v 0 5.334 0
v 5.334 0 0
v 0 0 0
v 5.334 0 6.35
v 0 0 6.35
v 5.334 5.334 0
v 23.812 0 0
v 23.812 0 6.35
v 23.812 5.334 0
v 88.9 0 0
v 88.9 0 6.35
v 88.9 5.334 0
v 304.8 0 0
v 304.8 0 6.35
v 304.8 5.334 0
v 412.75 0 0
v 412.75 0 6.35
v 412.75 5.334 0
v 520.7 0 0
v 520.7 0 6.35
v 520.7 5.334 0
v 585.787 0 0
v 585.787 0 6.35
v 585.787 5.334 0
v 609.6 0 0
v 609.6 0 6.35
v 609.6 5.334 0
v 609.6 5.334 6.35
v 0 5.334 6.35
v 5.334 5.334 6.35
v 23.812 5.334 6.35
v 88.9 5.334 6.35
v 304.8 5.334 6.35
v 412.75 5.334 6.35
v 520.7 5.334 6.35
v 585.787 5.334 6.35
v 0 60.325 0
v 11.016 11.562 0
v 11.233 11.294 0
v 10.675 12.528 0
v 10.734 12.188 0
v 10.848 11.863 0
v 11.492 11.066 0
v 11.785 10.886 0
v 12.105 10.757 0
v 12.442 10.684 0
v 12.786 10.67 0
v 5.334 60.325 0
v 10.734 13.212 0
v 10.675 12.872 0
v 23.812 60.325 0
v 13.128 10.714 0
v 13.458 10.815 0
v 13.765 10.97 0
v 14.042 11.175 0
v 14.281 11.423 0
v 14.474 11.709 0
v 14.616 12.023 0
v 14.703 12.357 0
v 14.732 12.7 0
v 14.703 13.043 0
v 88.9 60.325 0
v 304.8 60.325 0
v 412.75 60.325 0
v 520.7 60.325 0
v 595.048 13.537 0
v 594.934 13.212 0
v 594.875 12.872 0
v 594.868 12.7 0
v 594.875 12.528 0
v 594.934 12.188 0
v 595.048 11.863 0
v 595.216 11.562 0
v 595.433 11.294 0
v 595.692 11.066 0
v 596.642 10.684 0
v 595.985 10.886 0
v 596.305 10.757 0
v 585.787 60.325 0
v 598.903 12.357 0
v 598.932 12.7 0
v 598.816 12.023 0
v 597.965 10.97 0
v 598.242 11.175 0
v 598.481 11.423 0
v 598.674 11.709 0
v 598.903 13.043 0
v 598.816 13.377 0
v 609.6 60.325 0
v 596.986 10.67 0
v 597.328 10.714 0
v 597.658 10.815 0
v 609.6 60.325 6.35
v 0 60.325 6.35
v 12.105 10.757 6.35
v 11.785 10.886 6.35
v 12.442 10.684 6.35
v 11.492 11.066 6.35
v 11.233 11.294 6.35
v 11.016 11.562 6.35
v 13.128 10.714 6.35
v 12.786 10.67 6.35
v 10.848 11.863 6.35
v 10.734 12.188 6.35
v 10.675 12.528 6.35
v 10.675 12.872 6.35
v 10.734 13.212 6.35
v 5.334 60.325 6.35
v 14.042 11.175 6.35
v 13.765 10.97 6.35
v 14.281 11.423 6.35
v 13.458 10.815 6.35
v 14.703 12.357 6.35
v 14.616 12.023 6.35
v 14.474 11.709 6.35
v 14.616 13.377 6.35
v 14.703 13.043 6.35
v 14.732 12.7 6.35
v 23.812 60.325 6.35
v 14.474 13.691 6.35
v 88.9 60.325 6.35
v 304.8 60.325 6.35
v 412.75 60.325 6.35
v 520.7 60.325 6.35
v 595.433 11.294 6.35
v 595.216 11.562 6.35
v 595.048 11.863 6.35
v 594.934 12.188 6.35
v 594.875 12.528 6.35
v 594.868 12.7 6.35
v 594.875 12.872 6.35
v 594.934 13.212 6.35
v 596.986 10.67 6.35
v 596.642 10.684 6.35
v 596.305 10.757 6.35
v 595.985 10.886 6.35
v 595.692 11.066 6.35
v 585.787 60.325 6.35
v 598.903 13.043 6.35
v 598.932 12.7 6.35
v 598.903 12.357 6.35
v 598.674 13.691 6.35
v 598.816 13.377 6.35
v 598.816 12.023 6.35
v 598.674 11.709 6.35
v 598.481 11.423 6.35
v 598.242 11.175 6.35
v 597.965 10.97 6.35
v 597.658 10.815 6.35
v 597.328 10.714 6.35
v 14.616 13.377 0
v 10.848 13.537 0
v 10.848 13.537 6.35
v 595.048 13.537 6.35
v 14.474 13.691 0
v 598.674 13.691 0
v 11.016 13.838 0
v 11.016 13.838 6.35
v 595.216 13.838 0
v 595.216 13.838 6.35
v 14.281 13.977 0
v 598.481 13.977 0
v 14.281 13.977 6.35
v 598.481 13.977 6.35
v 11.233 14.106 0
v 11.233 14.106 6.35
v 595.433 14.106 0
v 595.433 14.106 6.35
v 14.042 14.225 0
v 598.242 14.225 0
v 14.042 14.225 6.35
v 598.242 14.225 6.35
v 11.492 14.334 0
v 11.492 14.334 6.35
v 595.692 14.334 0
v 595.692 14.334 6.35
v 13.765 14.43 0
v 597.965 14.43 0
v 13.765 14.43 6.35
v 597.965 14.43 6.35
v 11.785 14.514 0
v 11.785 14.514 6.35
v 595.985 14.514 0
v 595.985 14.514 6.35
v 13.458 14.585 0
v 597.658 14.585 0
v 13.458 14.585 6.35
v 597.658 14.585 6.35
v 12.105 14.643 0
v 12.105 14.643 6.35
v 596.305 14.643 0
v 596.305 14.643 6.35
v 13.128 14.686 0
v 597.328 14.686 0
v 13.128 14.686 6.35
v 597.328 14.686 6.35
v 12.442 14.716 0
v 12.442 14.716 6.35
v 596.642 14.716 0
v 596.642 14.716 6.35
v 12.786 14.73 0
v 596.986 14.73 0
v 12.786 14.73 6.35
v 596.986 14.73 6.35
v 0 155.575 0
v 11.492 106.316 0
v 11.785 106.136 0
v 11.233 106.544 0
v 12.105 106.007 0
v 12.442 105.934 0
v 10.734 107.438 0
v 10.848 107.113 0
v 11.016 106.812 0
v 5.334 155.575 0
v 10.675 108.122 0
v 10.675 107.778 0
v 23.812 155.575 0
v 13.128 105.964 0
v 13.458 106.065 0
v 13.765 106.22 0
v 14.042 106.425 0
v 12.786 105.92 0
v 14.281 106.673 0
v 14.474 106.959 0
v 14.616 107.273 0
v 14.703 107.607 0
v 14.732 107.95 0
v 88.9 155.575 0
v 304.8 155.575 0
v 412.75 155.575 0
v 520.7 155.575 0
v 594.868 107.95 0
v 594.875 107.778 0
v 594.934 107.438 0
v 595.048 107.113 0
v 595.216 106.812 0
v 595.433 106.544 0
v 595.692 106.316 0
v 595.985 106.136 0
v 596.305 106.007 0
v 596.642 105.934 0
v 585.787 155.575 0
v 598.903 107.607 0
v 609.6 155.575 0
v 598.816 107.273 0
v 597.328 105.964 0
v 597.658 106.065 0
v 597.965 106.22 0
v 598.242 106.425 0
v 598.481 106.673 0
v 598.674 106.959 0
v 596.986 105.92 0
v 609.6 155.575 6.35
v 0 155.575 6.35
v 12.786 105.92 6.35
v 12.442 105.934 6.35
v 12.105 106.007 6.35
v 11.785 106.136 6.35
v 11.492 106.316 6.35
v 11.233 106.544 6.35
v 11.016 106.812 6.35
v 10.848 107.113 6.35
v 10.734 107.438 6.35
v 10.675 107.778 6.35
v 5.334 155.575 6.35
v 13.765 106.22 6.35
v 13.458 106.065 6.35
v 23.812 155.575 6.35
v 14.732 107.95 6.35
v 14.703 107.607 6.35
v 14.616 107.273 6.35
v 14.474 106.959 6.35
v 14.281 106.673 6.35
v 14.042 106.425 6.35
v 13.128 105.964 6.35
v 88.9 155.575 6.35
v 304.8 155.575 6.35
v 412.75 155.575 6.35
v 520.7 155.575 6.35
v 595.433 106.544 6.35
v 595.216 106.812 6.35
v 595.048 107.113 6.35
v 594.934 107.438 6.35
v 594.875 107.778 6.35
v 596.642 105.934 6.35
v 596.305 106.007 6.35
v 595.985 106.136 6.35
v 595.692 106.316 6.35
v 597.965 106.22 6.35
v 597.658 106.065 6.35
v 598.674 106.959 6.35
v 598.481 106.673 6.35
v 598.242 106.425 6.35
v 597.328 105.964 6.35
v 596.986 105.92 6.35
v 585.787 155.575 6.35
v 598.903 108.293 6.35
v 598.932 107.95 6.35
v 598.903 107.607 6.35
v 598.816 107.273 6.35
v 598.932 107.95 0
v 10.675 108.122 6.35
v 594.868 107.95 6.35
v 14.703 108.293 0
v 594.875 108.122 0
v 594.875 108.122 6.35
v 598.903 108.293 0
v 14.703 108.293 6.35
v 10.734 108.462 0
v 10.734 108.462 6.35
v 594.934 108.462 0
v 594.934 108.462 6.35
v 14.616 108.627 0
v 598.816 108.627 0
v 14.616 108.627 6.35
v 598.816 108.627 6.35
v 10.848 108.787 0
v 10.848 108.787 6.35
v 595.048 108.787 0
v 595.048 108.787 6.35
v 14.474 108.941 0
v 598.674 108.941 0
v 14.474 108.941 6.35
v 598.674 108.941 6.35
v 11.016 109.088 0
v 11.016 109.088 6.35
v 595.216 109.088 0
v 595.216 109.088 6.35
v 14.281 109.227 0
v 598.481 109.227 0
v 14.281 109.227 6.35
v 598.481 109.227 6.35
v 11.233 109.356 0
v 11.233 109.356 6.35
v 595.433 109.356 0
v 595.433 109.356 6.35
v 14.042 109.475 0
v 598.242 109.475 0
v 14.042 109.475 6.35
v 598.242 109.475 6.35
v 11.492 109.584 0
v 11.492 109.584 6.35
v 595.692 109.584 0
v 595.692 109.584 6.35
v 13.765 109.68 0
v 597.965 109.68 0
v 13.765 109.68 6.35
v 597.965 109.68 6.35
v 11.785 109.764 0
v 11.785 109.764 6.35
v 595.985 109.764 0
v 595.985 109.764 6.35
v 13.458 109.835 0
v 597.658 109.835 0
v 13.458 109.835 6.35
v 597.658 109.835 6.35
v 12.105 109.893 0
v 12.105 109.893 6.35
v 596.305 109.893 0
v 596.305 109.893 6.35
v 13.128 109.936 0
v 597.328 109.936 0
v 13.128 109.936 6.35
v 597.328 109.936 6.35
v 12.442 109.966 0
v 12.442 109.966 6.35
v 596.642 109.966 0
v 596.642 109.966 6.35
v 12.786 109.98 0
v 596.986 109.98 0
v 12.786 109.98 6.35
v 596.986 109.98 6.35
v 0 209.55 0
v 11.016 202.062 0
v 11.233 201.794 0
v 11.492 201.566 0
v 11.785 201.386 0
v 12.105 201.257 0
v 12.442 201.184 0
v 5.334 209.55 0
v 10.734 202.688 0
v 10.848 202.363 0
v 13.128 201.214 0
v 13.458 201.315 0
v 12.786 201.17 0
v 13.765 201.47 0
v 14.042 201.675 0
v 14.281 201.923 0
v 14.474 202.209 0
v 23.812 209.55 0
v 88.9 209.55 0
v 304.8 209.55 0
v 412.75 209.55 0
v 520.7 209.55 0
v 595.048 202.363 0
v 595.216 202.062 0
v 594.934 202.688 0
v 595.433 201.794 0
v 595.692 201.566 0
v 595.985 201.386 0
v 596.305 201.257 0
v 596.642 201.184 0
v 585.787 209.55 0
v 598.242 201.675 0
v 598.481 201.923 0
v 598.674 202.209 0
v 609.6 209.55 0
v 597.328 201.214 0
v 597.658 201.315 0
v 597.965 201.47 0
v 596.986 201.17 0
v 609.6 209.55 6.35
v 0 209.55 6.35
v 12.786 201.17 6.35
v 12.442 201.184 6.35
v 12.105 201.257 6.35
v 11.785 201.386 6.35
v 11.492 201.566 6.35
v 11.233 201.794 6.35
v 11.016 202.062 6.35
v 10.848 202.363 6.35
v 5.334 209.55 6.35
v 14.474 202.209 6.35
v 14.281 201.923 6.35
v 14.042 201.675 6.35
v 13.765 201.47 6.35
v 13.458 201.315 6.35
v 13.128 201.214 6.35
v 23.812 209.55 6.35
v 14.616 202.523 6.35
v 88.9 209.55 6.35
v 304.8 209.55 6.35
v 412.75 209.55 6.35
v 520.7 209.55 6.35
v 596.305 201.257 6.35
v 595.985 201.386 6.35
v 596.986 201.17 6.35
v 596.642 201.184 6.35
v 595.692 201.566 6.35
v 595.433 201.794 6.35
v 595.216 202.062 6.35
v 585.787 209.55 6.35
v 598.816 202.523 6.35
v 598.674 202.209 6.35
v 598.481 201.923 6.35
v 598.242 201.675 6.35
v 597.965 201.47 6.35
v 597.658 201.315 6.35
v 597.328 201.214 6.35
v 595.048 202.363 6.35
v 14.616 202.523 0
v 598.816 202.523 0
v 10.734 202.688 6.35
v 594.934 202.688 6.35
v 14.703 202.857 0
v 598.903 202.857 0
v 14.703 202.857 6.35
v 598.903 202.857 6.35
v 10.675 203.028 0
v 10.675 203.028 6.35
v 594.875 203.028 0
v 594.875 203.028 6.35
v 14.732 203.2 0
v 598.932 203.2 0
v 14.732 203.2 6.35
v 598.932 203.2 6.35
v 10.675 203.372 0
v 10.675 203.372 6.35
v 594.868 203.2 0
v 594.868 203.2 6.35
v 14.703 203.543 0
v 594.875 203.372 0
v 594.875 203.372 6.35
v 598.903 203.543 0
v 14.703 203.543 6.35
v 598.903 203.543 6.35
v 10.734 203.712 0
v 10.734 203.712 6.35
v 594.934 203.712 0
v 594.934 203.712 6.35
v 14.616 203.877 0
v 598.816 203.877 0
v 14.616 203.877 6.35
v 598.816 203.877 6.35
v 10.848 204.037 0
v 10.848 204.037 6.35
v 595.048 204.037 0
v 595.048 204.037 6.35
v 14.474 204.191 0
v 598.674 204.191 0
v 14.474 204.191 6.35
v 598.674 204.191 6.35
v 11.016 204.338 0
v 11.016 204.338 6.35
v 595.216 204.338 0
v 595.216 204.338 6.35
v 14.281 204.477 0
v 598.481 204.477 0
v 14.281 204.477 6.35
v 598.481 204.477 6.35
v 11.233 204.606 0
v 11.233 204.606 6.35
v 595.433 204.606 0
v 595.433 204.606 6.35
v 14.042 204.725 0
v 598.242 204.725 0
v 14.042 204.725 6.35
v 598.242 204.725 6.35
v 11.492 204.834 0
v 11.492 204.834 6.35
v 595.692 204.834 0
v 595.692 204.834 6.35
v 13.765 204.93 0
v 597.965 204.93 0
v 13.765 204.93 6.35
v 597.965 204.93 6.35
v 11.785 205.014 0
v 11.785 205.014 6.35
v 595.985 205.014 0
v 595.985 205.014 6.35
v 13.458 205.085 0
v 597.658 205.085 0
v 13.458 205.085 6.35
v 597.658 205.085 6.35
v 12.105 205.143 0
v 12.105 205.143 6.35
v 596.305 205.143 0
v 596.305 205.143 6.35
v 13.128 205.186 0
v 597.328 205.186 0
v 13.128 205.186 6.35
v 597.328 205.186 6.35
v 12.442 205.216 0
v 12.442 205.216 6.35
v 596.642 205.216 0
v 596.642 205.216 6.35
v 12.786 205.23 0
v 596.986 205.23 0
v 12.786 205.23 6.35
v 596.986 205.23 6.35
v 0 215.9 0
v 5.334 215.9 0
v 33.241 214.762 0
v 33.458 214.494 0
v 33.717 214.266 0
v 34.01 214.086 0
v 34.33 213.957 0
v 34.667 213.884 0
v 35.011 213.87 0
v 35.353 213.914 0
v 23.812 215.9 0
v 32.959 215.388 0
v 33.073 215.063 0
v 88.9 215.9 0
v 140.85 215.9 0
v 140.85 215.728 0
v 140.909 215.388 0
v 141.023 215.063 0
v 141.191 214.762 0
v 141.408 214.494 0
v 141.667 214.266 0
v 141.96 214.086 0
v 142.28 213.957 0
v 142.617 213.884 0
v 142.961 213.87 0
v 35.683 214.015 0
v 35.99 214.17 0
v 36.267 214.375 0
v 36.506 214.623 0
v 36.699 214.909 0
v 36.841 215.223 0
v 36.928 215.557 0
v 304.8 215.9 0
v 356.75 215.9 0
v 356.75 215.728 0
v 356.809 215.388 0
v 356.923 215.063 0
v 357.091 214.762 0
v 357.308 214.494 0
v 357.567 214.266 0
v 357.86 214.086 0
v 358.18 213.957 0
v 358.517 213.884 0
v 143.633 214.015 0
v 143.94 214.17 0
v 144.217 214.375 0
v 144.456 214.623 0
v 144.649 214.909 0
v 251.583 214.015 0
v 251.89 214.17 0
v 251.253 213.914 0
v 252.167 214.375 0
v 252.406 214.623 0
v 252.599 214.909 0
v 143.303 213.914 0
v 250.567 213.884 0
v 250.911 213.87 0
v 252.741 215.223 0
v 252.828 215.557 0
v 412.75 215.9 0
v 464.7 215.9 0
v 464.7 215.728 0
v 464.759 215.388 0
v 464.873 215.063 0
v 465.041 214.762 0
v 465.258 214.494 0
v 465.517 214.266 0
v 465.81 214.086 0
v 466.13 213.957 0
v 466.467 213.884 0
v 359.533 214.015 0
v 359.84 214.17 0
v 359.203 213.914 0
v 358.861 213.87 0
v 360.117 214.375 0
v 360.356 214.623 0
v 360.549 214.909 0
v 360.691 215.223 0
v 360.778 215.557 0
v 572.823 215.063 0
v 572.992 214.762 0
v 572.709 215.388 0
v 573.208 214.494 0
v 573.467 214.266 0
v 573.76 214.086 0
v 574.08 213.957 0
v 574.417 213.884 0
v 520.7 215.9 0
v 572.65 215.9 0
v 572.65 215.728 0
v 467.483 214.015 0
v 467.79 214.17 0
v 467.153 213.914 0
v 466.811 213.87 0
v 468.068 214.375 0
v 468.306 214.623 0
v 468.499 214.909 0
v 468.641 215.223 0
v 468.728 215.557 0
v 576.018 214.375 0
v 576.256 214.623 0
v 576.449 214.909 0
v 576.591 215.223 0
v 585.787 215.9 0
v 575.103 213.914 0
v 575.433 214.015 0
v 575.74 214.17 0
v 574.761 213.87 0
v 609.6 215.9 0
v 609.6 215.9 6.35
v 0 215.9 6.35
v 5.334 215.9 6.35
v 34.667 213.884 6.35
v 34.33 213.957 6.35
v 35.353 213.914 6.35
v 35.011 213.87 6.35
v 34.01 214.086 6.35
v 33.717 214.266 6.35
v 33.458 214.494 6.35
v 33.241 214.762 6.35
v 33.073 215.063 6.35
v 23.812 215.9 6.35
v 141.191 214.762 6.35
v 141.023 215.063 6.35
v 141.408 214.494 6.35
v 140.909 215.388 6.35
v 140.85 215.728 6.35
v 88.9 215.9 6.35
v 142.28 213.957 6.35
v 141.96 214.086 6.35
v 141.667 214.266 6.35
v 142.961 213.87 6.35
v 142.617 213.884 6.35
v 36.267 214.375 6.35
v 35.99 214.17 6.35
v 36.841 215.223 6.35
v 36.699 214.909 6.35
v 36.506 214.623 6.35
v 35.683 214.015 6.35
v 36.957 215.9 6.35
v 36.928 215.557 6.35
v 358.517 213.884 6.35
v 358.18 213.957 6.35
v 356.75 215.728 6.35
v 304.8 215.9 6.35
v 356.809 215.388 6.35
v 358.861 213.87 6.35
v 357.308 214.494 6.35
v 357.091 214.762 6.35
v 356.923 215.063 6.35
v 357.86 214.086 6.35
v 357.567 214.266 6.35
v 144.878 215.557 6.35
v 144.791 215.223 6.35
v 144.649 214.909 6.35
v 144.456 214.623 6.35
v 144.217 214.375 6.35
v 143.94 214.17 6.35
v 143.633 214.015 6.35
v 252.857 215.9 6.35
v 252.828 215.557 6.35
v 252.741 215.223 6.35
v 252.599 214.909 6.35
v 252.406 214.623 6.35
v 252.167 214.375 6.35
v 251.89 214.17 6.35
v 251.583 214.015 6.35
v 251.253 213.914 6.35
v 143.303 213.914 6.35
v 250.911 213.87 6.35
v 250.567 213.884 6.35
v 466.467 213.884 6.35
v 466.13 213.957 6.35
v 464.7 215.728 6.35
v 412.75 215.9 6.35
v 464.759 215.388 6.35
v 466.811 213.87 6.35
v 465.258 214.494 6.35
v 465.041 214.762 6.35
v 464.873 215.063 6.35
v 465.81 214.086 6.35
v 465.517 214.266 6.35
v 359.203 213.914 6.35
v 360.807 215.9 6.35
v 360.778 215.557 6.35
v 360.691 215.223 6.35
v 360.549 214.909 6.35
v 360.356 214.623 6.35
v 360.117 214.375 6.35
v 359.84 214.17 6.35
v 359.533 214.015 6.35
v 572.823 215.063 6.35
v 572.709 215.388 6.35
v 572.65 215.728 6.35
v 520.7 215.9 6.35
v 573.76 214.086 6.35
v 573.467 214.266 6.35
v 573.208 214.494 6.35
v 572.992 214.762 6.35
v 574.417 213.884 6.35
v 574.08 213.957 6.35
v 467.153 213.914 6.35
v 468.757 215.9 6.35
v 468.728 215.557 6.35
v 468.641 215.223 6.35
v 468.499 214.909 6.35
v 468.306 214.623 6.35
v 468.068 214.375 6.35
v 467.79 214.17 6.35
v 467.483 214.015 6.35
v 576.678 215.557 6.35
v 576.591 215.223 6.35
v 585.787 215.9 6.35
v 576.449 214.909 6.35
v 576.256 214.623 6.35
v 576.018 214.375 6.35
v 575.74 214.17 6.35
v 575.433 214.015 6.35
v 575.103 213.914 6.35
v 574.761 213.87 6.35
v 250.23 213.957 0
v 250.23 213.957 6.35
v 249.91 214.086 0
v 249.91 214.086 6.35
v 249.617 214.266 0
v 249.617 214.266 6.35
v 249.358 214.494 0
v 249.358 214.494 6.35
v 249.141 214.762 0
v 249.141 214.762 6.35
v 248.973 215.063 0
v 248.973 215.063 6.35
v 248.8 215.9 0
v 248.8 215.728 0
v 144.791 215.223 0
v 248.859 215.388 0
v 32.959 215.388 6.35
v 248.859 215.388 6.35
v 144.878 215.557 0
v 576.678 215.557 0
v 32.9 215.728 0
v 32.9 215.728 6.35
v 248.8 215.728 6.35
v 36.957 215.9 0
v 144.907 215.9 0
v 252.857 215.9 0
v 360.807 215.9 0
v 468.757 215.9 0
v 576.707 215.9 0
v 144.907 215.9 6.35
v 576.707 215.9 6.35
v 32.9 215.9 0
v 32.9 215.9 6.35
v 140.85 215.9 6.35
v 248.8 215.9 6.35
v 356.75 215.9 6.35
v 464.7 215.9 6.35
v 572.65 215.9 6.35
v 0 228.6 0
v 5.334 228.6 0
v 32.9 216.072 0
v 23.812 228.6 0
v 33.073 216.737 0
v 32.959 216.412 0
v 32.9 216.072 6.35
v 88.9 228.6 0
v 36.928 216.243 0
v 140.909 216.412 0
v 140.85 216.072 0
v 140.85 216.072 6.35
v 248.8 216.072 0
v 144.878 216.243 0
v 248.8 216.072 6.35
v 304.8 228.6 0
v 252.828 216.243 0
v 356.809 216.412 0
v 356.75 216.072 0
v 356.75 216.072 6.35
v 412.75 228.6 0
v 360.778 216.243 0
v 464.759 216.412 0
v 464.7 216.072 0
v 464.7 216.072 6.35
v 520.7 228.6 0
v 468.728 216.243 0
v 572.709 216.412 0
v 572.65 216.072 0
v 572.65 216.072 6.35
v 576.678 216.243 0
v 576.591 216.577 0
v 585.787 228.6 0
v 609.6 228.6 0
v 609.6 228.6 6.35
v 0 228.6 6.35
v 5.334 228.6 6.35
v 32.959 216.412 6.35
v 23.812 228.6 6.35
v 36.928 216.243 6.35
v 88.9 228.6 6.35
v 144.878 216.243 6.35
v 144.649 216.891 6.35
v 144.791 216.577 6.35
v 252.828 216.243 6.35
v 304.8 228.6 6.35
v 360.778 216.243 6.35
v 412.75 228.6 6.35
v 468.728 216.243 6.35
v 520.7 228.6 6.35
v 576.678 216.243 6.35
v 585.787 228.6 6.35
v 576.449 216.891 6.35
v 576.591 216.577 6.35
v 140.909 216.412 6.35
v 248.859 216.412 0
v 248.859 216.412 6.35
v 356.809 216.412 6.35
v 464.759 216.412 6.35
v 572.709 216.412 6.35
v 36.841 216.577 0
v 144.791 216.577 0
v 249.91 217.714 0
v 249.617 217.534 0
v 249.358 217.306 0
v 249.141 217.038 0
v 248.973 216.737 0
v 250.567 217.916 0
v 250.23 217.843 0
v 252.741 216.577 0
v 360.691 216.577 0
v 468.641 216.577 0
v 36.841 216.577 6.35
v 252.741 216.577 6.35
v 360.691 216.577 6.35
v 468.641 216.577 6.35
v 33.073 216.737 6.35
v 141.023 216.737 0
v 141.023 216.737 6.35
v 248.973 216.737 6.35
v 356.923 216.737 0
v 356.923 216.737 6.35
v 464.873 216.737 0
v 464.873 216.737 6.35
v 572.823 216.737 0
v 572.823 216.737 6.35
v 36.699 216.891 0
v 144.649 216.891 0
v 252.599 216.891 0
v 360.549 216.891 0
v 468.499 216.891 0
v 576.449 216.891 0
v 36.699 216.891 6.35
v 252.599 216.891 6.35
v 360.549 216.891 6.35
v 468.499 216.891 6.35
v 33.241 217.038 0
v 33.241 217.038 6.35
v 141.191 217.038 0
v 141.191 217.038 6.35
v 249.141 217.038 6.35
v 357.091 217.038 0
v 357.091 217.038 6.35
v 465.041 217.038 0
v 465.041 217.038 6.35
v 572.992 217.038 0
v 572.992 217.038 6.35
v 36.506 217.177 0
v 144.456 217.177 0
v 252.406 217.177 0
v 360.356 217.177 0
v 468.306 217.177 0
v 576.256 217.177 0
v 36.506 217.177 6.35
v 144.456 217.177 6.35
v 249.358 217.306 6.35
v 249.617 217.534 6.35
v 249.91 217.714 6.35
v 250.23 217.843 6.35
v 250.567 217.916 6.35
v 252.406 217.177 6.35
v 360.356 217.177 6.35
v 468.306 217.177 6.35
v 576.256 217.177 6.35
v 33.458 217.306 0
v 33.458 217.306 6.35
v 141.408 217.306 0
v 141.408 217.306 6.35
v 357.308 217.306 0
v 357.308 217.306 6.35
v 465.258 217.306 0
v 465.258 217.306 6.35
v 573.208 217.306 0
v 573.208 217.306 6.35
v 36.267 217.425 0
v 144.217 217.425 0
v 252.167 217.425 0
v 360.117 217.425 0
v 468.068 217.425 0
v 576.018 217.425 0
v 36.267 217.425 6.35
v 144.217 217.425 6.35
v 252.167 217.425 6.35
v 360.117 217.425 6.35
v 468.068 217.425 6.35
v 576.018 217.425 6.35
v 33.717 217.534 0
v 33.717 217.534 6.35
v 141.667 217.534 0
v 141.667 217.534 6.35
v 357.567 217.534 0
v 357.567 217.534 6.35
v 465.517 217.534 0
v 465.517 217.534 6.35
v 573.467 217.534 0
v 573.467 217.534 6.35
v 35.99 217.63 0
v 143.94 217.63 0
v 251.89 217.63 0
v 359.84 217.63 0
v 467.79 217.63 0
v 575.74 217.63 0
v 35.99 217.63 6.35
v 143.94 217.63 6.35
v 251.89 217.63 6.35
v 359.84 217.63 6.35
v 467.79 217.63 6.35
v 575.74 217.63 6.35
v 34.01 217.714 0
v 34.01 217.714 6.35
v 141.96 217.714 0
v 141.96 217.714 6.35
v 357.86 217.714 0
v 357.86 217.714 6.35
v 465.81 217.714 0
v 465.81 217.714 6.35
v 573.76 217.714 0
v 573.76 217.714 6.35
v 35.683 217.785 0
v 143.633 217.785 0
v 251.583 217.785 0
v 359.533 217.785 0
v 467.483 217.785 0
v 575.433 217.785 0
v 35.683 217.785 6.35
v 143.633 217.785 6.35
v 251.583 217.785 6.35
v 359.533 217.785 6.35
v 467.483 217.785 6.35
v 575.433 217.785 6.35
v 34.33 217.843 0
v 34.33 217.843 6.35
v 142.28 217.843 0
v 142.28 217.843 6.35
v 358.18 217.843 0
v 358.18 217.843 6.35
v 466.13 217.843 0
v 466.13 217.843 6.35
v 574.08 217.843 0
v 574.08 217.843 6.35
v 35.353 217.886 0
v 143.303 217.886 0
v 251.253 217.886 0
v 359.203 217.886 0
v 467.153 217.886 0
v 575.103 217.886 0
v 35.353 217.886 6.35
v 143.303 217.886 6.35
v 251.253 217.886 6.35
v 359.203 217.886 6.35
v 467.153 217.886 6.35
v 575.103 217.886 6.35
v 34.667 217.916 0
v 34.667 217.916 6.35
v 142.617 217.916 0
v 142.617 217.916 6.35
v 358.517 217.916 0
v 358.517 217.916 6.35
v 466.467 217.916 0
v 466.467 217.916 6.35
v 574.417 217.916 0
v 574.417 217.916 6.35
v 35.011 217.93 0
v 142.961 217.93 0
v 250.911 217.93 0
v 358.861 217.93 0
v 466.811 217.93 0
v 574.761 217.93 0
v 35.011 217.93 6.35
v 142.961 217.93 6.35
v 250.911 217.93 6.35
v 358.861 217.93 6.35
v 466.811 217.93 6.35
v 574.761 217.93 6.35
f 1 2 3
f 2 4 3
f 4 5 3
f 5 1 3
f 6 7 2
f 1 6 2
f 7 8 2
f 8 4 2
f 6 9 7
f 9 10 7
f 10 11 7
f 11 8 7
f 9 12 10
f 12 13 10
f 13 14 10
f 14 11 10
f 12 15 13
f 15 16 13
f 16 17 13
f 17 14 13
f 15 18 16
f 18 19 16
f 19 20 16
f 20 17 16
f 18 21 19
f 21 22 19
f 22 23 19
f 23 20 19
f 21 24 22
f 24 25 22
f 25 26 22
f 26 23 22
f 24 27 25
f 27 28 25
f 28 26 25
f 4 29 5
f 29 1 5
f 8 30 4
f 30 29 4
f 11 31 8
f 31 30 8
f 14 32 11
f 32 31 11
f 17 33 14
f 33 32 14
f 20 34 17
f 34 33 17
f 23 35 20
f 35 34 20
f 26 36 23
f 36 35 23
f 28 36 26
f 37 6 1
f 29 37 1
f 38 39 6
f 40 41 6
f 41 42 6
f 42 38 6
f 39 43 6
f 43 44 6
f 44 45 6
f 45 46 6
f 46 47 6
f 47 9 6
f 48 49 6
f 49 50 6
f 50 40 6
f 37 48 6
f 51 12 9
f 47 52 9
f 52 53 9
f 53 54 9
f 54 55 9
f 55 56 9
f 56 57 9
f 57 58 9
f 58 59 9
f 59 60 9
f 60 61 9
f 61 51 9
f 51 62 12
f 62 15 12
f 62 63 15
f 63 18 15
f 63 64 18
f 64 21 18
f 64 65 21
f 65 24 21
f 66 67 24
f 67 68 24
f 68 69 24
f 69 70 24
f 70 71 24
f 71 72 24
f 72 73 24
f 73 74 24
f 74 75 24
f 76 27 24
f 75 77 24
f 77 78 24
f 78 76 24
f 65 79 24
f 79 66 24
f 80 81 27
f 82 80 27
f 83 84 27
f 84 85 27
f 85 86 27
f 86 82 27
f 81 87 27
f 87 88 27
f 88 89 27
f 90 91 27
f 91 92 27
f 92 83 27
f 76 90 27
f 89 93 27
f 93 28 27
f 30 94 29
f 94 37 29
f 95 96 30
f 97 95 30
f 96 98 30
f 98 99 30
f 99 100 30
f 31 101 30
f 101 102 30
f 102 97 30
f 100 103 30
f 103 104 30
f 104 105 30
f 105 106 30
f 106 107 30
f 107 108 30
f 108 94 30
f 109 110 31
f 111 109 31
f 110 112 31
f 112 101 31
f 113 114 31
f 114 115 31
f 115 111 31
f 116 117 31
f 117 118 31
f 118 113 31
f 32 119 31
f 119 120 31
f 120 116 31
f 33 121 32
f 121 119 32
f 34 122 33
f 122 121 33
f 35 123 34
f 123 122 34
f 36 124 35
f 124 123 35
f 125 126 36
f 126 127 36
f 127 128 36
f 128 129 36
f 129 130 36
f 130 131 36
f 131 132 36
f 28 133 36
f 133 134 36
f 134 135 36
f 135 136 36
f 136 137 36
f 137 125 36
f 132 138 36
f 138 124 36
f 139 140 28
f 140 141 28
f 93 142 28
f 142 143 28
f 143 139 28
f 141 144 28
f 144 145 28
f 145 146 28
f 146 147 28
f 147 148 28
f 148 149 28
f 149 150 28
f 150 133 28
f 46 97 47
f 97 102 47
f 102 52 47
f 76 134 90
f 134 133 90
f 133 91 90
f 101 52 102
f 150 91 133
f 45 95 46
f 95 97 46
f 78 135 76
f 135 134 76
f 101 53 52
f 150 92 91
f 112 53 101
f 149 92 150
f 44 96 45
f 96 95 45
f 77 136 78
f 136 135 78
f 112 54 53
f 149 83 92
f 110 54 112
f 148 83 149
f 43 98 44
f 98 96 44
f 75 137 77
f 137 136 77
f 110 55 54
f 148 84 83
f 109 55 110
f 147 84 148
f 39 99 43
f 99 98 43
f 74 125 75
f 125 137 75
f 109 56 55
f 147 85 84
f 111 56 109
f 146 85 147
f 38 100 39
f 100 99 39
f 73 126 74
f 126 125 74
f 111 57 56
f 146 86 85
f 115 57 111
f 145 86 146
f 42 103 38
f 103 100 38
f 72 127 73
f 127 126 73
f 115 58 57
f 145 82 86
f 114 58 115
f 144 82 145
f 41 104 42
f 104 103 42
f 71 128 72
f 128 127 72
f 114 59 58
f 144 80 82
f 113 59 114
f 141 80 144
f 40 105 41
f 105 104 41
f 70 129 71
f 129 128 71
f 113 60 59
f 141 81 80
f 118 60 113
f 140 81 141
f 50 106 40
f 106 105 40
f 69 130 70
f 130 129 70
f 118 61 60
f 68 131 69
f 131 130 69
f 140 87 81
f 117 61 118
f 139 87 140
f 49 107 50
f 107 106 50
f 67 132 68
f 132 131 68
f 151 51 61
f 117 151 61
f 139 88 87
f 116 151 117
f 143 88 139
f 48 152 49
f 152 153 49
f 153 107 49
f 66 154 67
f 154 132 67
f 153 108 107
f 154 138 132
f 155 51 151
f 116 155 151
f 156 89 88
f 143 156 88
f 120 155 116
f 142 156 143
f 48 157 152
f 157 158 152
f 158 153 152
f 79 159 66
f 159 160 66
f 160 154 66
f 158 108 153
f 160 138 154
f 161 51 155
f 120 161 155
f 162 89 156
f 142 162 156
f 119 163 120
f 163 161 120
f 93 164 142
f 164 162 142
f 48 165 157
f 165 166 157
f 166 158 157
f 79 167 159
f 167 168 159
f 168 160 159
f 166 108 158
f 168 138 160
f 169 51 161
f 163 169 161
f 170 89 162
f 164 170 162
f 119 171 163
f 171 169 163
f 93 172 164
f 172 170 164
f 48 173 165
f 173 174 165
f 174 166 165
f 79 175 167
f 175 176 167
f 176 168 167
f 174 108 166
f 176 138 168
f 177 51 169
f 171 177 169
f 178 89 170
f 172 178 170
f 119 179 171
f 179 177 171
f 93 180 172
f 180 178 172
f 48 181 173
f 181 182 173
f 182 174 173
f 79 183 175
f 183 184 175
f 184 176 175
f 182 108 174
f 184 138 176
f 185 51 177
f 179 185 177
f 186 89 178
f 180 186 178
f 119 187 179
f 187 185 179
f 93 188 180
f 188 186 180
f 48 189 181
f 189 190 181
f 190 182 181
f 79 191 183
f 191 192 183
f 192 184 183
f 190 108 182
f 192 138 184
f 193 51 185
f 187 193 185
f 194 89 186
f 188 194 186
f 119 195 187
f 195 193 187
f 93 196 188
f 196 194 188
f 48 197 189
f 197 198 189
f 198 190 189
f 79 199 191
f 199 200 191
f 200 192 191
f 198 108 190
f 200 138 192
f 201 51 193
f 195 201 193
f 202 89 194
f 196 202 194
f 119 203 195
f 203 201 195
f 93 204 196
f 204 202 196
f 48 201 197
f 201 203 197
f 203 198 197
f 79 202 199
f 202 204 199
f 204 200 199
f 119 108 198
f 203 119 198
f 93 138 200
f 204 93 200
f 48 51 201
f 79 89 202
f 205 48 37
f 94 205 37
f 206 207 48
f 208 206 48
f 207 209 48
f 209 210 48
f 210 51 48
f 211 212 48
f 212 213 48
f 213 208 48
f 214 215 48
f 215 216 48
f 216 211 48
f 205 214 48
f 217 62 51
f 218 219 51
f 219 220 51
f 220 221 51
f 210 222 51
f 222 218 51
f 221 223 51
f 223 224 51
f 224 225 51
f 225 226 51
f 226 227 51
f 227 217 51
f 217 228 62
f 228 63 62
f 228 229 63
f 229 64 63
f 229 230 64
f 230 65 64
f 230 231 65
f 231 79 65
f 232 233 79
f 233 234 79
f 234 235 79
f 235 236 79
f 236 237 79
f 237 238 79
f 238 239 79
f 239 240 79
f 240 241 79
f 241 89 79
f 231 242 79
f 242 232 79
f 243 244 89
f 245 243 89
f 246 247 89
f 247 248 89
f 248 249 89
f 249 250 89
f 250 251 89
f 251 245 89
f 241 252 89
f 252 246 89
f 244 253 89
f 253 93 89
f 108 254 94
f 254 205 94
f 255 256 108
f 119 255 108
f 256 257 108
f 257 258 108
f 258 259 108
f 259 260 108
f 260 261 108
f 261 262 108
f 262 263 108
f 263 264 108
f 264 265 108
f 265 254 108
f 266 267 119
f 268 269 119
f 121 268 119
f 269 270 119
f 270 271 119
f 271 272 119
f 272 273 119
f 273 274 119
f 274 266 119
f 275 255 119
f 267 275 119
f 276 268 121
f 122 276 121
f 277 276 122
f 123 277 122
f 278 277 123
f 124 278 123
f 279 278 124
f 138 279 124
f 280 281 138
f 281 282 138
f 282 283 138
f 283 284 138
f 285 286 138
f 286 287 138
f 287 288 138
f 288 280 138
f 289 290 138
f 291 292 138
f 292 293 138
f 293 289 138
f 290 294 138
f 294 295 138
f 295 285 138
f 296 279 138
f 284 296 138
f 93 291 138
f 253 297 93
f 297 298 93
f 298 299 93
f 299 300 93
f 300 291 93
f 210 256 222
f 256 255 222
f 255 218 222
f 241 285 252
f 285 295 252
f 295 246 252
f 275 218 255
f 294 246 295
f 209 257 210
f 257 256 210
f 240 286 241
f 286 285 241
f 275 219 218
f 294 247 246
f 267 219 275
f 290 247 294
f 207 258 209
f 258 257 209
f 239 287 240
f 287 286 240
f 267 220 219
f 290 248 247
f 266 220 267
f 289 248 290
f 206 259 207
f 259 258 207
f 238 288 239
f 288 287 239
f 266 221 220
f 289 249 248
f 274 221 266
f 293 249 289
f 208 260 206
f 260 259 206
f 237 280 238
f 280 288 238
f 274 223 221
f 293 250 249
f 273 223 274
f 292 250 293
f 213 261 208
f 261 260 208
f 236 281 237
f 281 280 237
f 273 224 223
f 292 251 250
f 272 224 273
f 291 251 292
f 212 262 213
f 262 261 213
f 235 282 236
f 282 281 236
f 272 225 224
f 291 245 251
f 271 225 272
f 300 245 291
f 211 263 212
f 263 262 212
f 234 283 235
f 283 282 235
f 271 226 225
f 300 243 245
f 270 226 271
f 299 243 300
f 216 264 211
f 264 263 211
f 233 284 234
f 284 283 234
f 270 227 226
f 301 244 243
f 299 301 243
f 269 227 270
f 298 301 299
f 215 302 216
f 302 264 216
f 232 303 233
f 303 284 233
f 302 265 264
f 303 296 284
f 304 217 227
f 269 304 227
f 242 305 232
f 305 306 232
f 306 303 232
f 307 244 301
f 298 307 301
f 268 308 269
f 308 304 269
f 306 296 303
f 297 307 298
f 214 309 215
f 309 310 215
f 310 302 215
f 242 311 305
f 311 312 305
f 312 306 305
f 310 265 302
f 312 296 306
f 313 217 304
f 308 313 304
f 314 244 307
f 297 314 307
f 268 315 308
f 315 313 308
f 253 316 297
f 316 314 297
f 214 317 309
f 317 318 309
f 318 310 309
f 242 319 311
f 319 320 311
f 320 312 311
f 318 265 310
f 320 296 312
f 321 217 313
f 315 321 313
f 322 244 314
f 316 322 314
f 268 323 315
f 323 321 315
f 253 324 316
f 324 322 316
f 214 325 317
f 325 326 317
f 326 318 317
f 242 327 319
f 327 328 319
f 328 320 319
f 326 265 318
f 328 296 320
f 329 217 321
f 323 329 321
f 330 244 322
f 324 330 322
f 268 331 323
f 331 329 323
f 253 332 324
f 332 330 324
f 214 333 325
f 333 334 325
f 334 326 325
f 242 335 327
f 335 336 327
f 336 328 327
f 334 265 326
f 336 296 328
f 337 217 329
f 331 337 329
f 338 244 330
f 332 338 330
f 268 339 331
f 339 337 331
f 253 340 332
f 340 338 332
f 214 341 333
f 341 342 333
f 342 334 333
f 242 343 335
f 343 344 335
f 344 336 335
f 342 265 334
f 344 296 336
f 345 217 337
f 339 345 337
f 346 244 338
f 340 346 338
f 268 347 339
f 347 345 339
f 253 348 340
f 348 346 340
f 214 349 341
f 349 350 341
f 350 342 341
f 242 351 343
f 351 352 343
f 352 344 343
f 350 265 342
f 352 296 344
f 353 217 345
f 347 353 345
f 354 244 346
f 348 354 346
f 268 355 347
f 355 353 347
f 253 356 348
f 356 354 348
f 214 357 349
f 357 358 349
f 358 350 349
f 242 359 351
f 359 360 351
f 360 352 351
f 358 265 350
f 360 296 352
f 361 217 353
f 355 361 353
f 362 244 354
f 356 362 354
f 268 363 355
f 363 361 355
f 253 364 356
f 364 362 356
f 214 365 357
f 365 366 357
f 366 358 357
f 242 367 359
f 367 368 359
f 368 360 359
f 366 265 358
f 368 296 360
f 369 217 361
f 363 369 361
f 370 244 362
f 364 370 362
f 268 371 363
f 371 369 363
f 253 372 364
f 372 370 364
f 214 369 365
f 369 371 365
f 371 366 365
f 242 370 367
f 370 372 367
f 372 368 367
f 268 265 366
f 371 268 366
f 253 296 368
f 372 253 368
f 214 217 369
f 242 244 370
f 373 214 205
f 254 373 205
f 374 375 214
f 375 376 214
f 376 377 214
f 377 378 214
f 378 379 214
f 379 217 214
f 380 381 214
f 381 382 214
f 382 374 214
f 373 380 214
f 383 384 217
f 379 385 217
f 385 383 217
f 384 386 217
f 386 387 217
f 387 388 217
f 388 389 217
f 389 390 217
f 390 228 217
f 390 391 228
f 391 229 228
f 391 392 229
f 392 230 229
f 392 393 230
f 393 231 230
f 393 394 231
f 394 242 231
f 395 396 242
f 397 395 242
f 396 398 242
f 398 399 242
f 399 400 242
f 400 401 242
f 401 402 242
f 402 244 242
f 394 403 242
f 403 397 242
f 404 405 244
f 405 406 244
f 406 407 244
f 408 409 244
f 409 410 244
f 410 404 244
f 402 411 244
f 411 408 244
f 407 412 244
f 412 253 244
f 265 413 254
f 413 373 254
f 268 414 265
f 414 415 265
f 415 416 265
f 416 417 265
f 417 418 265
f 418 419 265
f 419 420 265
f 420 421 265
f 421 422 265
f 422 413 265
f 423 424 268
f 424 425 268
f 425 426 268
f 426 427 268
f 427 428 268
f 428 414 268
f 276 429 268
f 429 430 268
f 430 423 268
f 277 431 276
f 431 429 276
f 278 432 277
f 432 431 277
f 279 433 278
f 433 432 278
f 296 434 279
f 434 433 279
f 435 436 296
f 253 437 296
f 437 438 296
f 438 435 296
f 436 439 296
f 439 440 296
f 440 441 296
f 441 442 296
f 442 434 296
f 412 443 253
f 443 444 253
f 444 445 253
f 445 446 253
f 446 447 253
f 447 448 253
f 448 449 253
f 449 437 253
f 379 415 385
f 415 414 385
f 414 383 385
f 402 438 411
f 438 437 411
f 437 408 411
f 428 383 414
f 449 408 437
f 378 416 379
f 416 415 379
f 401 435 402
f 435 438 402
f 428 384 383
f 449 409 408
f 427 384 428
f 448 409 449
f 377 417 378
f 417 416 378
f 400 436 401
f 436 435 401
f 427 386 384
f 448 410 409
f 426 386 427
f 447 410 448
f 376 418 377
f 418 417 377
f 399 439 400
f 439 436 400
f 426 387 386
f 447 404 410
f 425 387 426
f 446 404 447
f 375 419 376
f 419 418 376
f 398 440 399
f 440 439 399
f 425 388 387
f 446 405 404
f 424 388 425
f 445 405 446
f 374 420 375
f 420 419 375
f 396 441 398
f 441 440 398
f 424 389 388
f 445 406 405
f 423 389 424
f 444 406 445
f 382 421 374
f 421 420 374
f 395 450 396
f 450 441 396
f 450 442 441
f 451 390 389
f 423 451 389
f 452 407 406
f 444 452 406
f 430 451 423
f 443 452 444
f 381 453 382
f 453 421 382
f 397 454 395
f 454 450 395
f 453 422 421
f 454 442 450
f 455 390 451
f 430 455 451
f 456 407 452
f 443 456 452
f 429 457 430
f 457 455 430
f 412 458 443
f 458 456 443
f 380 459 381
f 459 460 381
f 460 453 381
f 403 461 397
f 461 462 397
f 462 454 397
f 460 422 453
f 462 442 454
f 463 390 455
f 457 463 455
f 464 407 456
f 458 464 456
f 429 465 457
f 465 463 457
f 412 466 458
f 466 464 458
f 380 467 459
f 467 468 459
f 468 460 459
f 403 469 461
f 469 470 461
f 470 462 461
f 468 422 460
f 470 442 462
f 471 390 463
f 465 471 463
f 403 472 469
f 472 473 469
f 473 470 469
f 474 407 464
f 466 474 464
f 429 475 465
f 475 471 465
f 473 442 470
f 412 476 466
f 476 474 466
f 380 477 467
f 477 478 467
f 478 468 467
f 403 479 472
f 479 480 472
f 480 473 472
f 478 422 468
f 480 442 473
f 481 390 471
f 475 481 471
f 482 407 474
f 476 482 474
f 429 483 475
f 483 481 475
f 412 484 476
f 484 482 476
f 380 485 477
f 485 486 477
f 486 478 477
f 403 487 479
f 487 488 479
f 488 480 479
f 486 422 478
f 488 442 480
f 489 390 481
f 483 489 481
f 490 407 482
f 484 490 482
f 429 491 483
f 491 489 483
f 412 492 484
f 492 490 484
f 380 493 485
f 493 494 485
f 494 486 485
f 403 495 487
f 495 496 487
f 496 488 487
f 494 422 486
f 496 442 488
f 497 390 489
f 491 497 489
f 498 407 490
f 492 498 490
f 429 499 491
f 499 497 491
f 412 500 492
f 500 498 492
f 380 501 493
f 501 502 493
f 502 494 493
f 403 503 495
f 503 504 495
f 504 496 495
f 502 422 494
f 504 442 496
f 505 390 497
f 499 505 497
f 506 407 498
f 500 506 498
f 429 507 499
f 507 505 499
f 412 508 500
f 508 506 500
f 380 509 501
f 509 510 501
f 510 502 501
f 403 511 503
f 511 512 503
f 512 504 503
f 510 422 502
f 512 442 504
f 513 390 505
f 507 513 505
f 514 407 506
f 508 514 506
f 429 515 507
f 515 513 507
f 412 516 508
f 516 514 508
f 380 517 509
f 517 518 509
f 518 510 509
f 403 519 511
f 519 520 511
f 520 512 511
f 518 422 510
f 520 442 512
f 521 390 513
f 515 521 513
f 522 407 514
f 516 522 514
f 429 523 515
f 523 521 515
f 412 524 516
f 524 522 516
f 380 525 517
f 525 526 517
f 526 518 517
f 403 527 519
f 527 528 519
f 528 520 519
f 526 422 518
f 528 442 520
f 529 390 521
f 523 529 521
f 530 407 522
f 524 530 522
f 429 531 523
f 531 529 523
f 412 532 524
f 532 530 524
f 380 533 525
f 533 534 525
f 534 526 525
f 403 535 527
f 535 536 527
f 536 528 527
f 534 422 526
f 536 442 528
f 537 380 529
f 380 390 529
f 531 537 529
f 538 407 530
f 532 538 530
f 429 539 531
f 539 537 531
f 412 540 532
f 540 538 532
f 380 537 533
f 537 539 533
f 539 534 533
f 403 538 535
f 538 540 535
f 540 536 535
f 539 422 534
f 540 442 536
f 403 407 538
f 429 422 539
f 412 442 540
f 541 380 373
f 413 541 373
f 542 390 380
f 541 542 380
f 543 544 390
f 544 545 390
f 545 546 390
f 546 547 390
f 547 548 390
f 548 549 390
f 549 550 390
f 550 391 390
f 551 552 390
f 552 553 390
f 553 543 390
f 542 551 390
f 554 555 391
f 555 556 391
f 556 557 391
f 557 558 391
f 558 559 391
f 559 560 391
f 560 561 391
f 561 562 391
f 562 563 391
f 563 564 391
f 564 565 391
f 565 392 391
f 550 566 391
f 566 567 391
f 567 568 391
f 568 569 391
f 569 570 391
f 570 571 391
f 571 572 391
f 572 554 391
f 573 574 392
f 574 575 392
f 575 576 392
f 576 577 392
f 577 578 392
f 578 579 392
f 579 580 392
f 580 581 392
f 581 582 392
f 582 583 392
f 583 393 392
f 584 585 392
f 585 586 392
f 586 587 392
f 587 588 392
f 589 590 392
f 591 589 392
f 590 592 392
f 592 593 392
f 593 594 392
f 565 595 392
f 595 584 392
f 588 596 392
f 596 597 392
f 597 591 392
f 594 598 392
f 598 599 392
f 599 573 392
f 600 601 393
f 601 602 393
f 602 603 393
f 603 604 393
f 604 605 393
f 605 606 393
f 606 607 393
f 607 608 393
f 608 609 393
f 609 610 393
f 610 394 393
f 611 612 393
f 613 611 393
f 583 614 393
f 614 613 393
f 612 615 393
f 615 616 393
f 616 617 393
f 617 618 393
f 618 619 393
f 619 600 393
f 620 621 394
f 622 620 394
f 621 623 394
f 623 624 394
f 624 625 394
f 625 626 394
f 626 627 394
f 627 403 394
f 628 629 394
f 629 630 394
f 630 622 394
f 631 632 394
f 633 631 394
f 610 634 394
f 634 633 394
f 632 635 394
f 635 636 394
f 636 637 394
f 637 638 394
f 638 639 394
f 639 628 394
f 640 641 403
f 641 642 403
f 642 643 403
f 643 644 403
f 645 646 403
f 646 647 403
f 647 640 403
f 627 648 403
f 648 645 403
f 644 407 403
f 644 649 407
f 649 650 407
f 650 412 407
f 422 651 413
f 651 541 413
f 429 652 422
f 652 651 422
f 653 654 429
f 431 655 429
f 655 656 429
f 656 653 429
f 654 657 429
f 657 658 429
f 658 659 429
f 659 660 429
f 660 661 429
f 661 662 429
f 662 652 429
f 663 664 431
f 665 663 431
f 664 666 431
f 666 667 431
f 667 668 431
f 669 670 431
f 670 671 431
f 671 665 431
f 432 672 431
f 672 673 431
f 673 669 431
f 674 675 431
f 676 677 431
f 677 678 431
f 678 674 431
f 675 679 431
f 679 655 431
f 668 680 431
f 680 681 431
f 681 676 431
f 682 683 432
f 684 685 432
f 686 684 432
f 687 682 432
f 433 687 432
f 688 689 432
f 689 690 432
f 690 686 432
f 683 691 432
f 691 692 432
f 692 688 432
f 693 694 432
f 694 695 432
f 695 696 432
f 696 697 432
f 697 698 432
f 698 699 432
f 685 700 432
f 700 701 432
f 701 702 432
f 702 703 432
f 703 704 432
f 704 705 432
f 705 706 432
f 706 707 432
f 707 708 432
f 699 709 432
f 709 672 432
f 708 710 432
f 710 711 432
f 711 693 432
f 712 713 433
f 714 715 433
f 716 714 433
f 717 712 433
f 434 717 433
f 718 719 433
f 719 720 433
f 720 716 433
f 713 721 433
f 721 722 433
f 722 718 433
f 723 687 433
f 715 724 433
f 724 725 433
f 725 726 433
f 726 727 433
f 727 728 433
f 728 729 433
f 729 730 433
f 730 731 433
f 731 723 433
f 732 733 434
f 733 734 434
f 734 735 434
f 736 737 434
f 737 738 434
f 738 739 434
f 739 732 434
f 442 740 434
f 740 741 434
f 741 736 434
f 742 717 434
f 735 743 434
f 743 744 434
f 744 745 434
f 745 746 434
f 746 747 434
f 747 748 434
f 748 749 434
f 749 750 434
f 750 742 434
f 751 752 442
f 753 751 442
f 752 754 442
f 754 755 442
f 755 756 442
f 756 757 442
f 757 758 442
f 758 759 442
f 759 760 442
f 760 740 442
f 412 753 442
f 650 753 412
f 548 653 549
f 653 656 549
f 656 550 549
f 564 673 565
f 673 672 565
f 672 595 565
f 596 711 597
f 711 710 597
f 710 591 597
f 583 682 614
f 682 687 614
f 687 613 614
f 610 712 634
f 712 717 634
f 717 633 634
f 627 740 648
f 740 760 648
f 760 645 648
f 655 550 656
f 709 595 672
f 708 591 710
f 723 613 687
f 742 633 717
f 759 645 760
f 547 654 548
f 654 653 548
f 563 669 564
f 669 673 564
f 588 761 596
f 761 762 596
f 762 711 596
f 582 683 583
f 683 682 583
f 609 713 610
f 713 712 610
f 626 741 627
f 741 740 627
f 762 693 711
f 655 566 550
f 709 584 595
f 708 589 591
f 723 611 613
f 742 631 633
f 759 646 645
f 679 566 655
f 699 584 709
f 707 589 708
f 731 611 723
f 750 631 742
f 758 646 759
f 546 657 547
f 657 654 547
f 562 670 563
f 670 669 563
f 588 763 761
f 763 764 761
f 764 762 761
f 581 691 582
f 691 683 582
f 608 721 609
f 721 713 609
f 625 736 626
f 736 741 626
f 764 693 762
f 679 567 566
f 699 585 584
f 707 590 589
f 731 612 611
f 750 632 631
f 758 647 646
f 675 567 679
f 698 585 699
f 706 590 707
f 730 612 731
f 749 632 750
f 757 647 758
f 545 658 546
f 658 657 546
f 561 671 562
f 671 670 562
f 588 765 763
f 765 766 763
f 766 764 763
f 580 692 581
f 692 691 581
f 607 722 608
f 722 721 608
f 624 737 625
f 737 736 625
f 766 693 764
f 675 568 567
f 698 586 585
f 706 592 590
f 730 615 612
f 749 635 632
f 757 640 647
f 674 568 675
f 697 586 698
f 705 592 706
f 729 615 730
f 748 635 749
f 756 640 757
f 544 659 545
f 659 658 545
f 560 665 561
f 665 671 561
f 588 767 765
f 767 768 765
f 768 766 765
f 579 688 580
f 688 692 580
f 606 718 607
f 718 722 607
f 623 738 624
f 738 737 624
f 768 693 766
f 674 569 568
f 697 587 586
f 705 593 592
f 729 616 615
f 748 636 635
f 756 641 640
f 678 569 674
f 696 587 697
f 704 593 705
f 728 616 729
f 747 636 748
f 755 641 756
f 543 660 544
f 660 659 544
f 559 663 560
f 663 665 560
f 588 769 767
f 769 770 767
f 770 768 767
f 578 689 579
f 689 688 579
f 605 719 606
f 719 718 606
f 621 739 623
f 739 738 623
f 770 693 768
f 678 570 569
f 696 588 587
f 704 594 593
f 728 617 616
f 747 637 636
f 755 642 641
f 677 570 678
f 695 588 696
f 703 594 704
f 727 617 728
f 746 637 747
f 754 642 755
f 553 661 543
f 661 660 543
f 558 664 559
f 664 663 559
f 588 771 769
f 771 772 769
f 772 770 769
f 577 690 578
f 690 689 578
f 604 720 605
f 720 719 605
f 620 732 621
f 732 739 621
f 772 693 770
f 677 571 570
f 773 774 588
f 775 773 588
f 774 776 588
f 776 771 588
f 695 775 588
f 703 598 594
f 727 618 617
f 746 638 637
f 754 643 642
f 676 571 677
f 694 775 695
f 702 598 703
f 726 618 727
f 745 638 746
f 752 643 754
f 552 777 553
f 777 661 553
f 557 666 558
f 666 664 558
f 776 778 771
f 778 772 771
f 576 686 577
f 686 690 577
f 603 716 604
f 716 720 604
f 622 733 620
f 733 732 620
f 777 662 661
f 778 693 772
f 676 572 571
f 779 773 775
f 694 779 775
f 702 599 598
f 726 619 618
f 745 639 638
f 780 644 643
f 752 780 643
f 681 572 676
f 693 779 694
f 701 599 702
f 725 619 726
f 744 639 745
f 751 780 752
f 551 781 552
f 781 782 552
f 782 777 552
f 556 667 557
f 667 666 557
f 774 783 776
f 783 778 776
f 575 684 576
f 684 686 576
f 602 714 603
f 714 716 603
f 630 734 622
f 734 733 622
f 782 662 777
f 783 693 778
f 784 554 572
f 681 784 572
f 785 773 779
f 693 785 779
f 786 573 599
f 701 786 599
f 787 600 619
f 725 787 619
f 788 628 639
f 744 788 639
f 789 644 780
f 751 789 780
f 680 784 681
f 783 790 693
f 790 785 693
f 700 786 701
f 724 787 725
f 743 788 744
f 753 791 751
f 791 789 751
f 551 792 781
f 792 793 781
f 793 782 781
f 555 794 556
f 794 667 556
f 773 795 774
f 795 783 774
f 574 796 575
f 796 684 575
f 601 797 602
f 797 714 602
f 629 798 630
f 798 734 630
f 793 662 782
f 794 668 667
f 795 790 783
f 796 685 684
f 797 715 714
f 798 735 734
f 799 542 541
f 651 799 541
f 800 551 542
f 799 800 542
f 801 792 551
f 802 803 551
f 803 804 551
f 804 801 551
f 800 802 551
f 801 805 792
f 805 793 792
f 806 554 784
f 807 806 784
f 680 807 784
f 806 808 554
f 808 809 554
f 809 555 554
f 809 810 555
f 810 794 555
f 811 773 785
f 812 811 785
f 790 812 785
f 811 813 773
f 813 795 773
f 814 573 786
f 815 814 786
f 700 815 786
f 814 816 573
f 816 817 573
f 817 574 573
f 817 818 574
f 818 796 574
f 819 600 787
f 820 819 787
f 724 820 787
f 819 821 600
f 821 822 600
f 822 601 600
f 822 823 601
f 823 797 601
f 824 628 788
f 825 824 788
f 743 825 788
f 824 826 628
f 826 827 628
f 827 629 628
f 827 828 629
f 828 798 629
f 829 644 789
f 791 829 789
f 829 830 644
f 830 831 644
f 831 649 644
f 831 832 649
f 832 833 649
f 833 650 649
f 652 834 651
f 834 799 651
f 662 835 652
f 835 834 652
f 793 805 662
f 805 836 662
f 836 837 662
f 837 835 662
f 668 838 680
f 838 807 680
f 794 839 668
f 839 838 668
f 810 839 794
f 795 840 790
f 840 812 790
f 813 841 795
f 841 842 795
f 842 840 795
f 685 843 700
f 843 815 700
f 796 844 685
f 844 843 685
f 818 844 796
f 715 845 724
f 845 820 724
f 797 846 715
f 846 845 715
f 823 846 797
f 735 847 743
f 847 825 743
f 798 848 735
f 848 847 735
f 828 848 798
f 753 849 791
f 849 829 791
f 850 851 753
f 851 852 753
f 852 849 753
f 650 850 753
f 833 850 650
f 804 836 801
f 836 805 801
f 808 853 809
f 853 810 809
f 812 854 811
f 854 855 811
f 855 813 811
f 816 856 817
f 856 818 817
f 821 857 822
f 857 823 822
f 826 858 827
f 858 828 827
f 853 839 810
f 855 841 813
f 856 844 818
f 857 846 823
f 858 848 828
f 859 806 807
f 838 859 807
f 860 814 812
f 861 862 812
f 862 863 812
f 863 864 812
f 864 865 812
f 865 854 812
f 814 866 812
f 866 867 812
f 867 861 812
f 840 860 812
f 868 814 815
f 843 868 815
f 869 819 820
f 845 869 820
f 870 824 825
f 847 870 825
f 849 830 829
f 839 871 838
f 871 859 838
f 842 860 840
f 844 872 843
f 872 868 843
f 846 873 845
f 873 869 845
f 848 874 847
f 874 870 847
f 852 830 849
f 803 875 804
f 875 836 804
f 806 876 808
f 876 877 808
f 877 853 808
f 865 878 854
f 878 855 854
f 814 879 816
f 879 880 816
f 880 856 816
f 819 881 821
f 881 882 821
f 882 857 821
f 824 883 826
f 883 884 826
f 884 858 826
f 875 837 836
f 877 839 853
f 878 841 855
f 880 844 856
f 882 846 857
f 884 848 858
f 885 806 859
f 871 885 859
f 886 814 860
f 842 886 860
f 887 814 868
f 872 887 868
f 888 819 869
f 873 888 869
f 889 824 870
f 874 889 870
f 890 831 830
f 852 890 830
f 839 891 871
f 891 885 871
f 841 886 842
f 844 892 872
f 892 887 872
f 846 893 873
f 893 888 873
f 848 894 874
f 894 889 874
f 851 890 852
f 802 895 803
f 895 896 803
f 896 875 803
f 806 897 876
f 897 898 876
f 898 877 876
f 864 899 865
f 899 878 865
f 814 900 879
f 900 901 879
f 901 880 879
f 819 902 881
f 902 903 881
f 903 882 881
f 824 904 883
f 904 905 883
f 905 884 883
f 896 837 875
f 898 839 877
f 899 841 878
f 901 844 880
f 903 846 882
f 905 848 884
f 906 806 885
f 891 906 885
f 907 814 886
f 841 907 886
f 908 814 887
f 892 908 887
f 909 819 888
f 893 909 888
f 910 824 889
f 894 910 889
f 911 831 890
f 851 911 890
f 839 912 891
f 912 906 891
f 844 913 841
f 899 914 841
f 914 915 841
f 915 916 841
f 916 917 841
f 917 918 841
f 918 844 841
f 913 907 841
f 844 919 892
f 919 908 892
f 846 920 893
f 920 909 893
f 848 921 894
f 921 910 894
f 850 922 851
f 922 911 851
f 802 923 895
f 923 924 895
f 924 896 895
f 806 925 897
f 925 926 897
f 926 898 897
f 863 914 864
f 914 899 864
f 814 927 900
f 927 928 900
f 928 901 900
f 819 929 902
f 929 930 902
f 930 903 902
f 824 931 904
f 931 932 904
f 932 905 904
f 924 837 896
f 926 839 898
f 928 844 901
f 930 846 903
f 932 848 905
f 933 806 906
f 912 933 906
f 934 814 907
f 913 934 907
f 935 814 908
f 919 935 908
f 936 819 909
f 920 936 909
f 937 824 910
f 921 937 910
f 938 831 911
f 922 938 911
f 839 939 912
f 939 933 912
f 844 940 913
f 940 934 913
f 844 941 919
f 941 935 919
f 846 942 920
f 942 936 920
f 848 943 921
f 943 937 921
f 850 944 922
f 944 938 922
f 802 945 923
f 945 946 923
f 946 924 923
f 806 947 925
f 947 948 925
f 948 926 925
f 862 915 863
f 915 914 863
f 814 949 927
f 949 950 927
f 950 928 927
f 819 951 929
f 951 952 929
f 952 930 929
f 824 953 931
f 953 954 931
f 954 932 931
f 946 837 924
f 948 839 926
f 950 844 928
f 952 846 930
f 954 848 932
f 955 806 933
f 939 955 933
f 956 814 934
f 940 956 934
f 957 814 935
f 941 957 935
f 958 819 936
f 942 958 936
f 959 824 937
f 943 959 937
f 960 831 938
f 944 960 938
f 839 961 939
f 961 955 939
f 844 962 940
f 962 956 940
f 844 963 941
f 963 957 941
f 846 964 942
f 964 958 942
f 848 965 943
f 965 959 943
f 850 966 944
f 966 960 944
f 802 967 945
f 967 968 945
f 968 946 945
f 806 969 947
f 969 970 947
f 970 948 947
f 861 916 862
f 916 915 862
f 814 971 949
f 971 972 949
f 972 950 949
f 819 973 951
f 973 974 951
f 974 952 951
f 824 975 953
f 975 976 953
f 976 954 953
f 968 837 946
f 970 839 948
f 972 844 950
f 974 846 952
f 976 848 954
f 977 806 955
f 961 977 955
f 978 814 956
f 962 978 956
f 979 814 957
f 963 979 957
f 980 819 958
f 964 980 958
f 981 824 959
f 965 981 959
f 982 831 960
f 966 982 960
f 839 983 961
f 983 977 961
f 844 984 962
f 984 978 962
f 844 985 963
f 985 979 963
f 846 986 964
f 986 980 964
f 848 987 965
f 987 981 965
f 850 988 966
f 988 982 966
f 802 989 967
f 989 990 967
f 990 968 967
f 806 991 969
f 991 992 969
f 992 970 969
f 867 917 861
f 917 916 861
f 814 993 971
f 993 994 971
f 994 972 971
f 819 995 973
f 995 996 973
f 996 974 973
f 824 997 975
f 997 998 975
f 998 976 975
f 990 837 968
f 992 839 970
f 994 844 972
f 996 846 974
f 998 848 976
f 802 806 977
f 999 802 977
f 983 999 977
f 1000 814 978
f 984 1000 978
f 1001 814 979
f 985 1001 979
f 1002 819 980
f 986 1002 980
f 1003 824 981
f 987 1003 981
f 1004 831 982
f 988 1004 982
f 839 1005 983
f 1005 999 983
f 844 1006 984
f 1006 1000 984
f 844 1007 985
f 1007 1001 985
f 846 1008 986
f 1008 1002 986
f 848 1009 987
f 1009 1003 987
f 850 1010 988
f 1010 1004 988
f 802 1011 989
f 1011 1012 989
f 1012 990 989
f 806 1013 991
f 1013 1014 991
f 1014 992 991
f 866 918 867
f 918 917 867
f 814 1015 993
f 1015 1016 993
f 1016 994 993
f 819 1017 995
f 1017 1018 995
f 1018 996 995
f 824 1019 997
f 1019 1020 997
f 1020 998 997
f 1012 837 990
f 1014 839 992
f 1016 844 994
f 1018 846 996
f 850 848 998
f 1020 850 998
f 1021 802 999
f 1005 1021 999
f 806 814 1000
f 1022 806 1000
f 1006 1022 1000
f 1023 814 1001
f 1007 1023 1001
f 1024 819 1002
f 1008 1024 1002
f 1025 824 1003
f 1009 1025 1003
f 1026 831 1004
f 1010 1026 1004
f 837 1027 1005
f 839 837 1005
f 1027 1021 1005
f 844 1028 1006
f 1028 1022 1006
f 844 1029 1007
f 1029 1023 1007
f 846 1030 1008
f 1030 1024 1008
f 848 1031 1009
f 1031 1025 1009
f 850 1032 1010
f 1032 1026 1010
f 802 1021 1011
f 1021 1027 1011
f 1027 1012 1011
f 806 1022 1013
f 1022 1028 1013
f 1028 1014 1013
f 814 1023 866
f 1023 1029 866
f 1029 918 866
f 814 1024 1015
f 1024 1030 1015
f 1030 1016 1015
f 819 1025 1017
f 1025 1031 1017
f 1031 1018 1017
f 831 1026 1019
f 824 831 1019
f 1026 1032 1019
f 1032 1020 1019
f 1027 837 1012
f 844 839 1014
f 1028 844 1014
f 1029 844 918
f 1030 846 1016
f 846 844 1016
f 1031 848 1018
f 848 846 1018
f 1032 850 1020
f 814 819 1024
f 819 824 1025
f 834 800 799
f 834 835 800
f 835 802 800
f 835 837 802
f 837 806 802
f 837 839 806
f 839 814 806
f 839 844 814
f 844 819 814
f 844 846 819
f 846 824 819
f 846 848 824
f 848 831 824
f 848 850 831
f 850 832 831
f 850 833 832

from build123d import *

# Parameters (mm, degrees)
SKETCH1_W           = 609.6
SKETCH1_H           = 228.6
BOSS_EXTRUDE1_DEPTH = 6.35
SKETCH2_R           = 2.032
CUT_EXTRUDE4_DEPTH  = 7.35
SKETCH4_R           = 2.032
CUT_EXTRUDE7_DEPTH  = 7.35


with BuildPart() as part:
    # Sketch1 → Boss-Extrude1 (new body)
    with BuildSketch(Plane.XY):
        with Locations((304.8, 114.3)):
            Rectangle(SKETCH1_W, SKETCH1_H)
    extrude(amount=BOSS_EXTRUDE1_DEPTH)

    # Sketch2 → Cut-Extrude4 (cut, through all)
    with BuildSketch(Plane.XY.offset(6.35)):
        with Locations((12.7, 203.2)):
            Circle(SKETCH2_R)
        with Locations((12.7, 107.95)):
            Circle(SKETCH2_R)
        with Locations((12.7, 12.7)):
            Circle(SKETCH2_R)
        with Locations((596.9, 12.7)):
            Circle(SKETCH2_R)
        with Locations((596.9, 107.95)):
            Circle(SKETCH2_R)
        with Locations((596.9, 203.2)):
            Circle(SKETCH2_R)
    extrude(amount=-CUT_EXTRUDE4_DEPTH, mode=Mode.SUBTRACT)

    # Sketch4 → Cut-Extrude7 (cut, through all)
    with BuildSketch(Plane.XY.offset(6.35)):
        with Locations((34.925, 215.9)):
            Circle(SKETCH4_R)
        with Locations((142.875, 215.9)):
            Circle(SKETCH4_R)
        with Locations((250.825, 215.9)):
            Circle(SKETCH4_R)
        with Locations((358.775, 215.9)):
            Circle(SKETCH4_R)
        with Locations((466.725, 215.9)):
            Circle(SKETCH4_R)
        with Locations((574.675, 215.9)):
            Circle(SKETCH4_R)
    extrude(amount=-CUT_EXTRUDE7_DEPTH, mode=Mode.SUBTRACT)


solid = part.part
